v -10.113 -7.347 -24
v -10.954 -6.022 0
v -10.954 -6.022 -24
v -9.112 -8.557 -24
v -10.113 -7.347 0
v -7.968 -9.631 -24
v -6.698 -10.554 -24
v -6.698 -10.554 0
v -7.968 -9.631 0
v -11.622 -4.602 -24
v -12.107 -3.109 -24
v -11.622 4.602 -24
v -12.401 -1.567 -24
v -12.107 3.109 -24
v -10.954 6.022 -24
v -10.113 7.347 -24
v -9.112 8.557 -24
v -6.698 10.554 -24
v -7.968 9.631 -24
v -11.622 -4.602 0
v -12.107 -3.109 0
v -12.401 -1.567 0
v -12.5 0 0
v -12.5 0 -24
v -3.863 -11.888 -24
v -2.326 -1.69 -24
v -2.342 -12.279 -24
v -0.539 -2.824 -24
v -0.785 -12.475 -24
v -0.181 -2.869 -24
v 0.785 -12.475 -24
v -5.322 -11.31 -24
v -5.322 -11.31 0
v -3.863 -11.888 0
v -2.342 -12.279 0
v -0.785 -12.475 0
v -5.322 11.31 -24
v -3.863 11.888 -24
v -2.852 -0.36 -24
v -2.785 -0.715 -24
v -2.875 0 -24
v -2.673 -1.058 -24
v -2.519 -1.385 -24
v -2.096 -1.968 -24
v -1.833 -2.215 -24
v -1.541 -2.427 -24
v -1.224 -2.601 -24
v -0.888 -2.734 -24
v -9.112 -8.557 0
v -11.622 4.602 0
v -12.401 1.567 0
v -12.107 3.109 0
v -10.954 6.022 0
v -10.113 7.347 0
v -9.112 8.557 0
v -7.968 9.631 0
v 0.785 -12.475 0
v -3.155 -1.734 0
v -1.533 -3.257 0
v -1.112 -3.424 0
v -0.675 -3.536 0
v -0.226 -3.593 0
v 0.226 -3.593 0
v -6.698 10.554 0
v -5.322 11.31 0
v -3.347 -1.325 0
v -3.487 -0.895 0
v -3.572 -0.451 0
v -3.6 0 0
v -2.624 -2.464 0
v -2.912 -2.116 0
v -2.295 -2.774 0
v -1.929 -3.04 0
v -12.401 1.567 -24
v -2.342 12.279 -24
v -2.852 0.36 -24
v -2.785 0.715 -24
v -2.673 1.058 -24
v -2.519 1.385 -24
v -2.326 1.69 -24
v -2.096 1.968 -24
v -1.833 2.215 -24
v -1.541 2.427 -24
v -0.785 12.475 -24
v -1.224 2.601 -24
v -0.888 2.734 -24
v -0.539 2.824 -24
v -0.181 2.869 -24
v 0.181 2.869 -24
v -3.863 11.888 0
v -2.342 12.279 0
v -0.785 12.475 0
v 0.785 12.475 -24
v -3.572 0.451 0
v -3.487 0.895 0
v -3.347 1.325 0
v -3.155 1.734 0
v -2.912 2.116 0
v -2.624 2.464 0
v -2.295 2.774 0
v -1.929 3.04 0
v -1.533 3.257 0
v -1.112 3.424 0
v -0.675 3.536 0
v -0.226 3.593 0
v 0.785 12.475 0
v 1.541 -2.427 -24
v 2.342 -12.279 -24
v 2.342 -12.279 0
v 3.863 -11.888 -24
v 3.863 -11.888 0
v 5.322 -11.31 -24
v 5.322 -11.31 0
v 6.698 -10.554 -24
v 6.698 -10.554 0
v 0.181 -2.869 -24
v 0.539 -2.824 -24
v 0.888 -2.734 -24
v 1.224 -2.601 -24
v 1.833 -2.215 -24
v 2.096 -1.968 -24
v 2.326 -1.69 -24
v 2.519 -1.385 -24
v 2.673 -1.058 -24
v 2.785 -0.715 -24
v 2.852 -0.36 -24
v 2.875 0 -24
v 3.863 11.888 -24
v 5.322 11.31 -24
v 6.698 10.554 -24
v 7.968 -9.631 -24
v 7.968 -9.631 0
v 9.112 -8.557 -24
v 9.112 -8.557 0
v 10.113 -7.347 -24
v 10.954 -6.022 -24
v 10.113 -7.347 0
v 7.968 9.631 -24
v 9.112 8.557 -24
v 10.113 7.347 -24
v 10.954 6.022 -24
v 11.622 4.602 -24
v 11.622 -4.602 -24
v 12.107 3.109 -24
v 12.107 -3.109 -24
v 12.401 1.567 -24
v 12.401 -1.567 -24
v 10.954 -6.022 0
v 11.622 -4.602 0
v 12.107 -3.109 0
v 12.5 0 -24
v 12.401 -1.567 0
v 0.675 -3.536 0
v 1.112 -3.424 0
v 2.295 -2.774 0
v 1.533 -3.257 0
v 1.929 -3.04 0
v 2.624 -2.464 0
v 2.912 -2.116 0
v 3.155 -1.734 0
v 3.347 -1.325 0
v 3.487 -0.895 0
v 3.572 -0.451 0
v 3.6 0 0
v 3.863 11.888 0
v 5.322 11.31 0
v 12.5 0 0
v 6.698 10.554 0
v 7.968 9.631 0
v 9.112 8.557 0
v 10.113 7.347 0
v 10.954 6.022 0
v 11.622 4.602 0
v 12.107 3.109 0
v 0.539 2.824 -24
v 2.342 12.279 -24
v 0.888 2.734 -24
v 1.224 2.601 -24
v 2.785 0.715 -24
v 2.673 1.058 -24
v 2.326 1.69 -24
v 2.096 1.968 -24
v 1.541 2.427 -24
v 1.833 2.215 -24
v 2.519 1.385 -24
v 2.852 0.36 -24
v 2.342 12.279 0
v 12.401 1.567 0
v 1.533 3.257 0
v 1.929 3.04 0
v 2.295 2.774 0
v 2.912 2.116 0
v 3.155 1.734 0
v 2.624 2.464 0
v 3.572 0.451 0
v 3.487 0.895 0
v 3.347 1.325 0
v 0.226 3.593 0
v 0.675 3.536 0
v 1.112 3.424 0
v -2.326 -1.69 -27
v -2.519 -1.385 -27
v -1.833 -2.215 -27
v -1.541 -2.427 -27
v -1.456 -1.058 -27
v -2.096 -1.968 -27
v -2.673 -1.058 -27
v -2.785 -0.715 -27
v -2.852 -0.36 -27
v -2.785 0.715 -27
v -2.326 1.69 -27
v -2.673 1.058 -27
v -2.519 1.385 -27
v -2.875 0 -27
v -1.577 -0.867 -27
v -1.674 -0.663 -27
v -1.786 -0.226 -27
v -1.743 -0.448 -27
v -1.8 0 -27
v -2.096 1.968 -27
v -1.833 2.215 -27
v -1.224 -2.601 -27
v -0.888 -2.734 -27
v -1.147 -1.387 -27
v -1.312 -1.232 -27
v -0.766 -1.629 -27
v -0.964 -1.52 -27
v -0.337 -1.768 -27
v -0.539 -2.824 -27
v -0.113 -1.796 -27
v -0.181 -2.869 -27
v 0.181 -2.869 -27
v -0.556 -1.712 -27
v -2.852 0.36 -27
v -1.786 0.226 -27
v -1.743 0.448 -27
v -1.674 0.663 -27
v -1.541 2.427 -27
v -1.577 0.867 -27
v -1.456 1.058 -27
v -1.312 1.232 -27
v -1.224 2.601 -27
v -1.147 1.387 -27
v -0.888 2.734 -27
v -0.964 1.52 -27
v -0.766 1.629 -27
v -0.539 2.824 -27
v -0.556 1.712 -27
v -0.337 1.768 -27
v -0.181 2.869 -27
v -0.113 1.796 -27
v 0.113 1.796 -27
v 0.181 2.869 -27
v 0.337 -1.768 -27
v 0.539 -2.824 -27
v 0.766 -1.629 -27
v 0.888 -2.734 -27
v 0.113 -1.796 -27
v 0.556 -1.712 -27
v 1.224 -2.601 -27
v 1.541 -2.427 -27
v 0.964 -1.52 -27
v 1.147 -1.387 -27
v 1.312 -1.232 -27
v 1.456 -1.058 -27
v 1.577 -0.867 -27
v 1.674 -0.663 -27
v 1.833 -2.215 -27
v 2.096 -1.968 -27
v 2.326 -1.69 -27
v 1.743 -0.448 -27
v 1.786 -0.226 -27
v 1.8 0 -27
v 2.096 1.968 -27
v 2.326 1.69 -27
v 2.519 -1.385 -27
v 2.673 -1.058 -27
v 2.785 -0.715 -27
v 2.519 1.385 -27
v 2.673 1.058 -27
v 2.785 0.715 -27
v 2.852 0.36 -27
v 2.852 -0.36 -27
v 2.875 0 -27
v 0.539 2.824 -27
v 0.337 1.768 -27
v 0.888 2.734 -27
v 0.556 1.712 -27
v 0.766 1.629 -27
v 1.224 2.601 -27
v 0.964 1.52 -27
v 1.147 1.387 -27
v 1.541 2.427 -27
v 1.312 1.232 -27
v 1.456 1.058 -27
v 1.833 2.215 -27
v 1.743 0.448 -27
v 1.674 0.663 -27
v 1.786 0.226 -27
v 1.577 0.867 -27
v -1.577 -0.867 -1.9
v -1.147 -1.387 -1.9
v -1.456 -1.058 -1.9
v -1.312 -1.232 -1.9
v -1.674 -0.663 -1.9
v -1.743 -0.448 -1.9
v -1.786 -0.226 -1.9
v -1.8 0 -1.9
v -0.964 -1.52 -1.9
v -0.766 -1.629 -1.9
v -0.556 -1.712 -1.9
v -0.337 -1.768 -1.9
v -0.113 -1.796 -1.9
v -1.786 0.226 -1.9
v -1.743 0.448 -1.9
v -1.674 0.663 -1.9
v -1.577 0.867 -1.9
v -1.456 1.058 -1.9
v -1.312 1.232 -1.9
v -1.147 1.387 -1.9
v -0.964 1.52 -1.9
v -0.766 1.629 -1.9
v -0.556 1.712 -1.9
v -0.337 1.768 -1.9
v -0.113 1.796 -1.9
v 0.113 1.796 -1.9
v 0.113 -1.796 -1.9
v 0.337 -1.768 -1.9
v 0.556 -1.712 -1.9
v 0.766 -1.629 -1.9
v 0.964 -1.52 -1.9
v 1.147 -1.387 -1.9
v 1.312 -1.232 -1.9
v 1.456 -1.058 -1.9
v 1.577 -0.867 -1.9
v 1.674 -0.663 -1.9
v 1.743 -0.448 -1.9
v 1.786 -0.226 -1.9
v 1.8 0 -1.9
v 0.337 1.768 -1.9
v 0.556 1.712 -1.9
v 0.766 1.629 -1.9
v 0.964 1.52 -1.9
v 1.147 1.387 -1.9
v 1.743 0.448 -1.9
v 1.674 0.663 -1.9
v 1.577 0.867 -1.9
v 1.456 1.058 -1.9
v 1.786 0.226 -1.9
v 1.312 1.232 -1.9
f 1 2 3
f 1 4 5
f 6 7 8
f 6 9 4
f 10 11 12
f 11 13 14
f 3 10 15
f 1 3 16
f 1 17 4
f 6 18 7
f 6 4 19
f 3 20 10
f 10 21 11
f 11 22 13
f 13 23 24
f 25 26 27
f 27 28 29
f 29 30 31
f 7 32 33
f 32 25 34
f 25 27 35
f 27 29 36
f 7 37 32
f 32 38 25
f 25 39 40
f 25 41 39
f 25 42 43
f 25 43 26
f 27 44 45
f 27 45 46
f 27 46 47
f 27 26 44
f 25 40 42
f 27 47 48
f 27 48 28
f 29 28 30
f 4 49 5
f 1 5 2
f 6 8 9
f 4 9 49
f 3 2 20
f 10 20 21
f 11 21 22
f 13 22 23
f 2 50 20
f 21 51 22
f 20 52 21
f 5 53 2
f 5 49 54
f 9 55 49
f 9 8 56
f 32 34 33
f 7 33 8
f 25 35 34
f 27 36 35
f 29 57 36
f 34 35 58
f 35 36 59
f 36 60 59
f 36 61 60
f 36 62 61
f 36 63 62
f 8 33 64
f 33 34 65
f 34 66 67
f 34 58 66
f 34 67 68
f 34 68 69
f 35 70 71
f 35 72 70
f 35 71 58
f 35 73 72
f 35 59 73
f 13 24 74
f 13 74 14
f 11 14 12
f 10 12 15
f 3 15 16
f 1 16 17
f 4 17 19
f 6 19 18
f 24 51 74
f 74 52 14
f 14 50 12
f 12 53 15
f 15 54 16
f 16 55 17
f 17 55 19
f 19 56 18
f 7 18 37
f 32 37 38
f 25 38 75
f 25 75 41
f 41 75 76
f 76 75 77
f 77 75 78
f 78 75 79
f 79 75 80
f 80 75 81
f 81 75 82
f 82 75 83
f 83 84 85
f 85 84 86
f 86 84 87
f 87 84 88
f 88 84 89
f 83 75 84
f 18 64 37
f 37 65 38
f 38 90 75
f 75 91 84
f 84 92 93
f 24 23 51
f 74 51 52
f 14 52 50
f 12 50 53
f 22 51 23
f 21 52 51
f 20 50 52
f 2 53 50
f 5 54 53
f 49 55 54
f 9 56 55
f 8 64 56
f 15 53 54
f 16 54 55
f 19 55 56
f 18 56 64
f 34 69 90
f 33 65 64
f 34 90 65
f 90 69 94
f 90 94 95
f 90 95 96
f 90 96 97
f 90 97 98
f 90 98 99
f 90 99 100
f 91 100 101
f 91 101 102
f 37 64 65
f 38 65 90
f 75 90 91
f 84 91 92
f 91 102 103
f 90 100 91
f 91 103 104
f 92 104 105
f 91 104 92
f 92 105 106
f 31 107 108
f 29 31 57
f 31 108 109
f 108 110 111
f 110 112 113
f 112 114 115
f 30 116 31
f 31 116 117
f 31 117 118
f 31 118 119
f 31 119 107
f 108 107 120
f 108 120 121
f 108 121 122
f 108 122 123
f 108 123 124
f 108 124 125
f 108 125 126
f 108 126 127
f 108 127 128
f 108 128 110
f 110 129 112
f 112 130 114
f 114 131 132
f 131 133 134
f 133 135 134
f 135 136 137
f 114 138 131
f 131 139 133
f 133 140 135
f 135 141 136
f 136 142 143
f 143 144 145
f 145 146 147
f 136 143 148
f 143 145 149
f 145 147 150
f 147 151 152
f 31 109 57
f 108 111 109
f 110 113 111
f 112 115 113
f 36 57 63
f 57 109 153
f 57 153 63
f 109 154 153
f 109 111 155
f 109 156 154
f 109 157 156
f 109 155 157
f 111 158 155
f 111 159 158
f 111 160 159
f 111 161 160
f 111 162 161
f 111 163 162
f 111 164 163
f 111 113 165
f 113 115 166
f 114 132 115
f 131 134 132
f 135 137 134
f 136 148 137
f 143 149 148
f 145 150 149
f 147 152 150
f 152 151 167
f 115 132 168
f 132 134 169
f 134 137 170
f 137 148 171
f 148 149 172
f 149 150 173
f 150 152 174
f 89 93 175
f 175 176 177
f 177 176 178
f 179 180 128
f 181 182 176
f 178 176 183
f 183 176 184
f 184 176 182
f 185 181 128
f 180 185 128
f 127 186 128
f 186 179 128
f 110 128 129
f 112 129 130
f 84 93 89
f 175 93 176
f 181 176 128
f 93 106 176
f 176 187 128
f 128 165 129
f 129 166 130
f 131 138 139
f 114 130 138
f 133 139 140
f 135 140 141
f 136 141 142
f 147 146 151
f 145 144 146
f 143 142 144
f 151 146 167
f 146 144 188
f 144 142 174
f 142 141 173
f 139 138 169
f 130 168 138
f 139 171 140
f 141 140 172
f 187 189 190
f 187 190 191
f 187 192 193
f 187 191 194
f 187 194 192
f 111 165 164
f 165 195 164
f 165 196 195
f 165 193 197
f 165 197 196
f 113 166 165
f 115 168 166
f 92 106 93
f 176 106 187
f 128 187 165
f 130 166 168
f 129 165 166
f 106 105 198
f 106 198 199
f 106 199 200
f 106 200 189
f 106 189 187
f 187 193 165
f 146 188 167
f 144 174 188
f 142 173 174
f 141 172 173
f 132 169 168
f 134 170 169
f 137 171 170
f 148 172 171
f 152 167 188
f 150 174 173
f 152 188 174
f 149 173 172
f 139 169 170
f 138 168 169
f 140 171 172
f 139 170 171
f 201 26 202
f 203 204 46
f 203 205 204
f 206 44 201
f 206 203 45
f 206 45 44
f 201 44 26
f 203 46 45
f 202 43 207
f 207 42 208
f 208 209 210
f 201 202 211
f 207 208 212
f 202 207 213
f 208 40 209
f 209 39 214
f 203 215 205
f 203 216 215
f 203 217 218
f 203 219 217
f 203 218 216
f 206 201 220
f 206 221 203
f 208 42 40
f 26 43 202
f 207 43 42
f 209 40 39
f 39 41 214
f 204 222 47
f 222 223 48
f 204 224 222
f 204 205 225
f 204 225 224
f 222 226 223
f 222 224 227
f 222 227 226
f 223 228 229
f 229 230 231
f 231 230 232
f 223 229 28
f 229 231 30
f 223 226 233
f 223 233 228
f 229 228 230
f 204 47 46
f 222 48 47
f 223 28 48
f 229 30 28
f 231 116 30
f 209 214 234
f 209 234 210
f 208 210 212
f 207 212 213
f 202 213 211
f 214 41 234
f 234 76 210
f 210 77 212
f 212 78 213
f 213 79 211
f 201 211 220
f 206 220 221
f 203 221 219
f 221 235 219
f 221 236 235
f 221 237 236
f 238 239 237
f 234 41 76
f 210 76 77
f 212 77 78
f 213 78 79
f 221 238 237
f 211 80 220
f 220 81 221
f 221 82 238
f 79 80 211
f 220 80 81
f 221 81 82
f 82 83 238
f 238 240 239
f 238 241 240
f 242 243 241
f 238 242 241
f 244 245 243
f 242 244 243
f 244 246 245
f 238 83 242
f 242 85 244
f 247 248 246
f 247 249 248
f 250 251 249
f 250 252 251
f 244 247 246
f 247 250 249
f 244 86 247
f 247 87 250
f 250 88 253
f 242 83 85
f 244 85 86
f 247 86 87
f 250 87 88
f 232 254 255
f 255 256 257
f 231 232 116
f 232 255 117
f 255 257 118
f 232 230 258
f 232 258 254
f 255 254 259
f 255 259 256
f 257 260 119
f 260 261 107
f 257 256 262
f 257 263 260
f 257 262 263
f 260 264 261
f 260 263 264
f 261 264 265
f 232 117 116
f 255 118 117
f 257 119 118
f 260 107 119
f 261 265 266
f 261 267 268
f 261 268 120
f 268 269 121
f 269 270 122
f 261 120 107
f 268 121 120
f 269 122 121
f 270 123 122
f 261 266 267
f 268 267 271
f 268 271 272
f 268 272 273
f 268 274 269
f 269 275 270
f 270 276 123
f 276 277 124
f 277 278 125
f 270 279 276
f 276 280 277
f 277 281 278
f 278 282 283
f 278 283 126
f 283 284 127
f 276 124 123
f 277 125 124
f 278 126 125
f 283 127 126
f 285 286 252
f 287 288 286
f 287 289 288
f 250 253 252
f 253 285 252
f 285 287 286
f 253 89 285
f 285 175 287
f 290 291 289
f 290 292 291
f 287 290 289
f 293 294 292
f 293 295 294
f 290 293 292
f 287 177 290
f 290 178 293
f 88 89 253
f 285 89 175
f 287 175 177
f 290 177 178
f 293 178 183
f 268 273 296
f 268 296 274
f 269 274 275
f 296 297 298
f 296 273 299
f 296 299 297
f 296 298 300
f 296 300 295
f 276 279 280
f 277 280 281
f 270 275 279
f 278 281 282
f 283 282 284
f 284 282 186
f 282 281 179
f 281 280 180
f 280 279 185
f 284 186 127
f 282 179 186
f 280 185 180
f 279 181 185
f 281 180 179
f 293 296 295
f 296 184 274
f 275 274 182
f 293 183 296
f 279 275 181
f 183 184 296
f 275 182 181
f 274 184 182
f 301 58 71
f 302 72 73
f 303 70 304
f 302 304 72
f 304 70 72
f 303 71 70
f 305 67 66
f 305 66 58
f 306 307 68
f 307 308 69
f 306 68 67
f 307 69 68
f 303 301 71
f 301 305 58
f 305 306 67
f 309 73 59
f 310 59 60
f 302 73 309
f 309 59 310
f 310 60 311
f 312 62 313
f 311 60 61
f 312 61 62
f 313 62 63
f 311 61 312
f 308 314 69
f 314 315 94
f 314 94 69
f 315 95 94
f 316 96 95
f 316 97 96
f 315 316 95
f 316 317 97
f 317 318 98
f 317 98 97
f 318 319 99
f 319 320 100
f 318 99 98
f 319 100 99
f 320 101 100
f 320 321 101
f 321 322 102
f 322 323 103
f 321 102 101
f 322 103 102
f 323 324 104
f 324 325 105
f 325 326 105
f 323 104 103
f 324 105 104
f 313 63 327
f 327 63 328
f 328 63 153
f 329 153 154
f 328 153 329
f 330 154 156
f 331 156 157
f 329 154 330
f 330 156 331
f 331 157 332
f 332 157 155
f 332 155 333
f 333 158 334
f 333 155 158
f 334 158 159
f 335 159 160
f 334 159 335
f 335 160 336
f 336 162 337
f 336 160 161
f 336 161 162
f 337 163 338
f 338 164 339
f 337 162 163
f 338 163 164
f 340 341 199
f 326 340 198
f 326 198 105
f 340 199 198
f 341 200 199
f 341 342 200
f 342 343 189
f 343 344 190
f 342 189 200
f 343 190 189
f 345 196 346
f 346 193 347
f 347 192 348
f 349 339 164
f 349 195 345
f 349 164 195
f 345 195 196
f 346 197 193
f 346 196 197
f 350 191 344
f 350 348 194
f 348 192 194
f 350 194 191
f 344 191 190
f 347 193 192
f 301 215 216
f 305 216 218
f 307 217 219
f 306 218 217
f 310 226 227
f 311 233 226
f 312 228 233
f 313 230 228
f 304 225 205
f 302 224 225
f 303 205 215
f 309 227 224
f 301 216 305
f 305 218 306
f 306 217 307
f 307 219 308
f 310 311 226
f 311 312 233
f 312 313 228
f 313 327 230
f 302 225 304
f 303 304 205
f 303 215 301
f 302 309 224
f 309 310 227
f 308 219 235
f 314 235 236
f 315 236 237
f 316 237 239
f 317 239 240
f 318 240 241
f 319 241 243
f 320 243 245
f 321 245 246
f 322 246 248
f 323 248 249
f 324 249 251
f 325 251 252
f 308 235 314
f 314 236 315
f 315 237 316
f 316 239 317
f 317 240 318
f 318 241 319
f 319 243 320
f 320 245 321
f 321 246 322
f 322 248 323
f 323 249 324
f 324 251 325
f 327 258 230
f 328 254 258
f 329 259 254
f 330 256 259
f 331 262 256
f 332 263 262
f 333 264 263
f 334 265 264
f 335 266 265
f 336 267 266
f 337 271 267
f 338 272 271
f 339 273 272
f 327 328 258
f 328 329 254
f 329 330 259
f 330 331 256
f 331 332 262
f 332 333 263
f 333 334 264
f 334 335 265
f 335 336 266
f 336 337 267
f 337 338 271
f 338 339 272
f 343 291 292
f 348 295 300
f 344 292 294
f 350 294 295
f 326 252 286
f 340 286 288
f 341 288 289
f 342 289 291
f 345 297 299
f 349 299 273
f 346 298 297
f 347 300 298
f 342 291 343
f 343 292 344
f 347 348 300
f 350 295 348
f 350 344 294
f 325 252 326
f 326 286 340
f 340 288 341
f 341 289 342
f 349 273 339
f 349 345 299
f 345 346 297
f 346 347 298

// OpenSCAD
$fn = 50;

difference() {
	union() {
		translate(v = [0, 0, -24.0]) {
			cylinder(h = 24, r = 12.5);
		}
		#translate(v = [0, 0, -27.0]) {
			cylinder(h = 27, r = 2.875);
		}
	}
	union() {
		translate(v = [0, 0, 0]) {
			rotate(a = [0, 0, 0]) {
				difference() {
					union() {
						translate(v = [0, 0, -27.0]) {
							cylinder(h = 27, r = 1.5);
						}
						translate(v = [0, 0, -1.9]) {
							cylinder(h = 1.9, r1 = 1.8, r2 = 3.6);
						}
						translate(v = [0, 0, -27.0]) {
							cylinder(h = 27, r = 1.8);
						}
						translate(v = [0, 0, -27.0]) {
							cylinder(h = 27, r = 1.5);
						}
					}
					union();
				}
			}
		}
	}
}
